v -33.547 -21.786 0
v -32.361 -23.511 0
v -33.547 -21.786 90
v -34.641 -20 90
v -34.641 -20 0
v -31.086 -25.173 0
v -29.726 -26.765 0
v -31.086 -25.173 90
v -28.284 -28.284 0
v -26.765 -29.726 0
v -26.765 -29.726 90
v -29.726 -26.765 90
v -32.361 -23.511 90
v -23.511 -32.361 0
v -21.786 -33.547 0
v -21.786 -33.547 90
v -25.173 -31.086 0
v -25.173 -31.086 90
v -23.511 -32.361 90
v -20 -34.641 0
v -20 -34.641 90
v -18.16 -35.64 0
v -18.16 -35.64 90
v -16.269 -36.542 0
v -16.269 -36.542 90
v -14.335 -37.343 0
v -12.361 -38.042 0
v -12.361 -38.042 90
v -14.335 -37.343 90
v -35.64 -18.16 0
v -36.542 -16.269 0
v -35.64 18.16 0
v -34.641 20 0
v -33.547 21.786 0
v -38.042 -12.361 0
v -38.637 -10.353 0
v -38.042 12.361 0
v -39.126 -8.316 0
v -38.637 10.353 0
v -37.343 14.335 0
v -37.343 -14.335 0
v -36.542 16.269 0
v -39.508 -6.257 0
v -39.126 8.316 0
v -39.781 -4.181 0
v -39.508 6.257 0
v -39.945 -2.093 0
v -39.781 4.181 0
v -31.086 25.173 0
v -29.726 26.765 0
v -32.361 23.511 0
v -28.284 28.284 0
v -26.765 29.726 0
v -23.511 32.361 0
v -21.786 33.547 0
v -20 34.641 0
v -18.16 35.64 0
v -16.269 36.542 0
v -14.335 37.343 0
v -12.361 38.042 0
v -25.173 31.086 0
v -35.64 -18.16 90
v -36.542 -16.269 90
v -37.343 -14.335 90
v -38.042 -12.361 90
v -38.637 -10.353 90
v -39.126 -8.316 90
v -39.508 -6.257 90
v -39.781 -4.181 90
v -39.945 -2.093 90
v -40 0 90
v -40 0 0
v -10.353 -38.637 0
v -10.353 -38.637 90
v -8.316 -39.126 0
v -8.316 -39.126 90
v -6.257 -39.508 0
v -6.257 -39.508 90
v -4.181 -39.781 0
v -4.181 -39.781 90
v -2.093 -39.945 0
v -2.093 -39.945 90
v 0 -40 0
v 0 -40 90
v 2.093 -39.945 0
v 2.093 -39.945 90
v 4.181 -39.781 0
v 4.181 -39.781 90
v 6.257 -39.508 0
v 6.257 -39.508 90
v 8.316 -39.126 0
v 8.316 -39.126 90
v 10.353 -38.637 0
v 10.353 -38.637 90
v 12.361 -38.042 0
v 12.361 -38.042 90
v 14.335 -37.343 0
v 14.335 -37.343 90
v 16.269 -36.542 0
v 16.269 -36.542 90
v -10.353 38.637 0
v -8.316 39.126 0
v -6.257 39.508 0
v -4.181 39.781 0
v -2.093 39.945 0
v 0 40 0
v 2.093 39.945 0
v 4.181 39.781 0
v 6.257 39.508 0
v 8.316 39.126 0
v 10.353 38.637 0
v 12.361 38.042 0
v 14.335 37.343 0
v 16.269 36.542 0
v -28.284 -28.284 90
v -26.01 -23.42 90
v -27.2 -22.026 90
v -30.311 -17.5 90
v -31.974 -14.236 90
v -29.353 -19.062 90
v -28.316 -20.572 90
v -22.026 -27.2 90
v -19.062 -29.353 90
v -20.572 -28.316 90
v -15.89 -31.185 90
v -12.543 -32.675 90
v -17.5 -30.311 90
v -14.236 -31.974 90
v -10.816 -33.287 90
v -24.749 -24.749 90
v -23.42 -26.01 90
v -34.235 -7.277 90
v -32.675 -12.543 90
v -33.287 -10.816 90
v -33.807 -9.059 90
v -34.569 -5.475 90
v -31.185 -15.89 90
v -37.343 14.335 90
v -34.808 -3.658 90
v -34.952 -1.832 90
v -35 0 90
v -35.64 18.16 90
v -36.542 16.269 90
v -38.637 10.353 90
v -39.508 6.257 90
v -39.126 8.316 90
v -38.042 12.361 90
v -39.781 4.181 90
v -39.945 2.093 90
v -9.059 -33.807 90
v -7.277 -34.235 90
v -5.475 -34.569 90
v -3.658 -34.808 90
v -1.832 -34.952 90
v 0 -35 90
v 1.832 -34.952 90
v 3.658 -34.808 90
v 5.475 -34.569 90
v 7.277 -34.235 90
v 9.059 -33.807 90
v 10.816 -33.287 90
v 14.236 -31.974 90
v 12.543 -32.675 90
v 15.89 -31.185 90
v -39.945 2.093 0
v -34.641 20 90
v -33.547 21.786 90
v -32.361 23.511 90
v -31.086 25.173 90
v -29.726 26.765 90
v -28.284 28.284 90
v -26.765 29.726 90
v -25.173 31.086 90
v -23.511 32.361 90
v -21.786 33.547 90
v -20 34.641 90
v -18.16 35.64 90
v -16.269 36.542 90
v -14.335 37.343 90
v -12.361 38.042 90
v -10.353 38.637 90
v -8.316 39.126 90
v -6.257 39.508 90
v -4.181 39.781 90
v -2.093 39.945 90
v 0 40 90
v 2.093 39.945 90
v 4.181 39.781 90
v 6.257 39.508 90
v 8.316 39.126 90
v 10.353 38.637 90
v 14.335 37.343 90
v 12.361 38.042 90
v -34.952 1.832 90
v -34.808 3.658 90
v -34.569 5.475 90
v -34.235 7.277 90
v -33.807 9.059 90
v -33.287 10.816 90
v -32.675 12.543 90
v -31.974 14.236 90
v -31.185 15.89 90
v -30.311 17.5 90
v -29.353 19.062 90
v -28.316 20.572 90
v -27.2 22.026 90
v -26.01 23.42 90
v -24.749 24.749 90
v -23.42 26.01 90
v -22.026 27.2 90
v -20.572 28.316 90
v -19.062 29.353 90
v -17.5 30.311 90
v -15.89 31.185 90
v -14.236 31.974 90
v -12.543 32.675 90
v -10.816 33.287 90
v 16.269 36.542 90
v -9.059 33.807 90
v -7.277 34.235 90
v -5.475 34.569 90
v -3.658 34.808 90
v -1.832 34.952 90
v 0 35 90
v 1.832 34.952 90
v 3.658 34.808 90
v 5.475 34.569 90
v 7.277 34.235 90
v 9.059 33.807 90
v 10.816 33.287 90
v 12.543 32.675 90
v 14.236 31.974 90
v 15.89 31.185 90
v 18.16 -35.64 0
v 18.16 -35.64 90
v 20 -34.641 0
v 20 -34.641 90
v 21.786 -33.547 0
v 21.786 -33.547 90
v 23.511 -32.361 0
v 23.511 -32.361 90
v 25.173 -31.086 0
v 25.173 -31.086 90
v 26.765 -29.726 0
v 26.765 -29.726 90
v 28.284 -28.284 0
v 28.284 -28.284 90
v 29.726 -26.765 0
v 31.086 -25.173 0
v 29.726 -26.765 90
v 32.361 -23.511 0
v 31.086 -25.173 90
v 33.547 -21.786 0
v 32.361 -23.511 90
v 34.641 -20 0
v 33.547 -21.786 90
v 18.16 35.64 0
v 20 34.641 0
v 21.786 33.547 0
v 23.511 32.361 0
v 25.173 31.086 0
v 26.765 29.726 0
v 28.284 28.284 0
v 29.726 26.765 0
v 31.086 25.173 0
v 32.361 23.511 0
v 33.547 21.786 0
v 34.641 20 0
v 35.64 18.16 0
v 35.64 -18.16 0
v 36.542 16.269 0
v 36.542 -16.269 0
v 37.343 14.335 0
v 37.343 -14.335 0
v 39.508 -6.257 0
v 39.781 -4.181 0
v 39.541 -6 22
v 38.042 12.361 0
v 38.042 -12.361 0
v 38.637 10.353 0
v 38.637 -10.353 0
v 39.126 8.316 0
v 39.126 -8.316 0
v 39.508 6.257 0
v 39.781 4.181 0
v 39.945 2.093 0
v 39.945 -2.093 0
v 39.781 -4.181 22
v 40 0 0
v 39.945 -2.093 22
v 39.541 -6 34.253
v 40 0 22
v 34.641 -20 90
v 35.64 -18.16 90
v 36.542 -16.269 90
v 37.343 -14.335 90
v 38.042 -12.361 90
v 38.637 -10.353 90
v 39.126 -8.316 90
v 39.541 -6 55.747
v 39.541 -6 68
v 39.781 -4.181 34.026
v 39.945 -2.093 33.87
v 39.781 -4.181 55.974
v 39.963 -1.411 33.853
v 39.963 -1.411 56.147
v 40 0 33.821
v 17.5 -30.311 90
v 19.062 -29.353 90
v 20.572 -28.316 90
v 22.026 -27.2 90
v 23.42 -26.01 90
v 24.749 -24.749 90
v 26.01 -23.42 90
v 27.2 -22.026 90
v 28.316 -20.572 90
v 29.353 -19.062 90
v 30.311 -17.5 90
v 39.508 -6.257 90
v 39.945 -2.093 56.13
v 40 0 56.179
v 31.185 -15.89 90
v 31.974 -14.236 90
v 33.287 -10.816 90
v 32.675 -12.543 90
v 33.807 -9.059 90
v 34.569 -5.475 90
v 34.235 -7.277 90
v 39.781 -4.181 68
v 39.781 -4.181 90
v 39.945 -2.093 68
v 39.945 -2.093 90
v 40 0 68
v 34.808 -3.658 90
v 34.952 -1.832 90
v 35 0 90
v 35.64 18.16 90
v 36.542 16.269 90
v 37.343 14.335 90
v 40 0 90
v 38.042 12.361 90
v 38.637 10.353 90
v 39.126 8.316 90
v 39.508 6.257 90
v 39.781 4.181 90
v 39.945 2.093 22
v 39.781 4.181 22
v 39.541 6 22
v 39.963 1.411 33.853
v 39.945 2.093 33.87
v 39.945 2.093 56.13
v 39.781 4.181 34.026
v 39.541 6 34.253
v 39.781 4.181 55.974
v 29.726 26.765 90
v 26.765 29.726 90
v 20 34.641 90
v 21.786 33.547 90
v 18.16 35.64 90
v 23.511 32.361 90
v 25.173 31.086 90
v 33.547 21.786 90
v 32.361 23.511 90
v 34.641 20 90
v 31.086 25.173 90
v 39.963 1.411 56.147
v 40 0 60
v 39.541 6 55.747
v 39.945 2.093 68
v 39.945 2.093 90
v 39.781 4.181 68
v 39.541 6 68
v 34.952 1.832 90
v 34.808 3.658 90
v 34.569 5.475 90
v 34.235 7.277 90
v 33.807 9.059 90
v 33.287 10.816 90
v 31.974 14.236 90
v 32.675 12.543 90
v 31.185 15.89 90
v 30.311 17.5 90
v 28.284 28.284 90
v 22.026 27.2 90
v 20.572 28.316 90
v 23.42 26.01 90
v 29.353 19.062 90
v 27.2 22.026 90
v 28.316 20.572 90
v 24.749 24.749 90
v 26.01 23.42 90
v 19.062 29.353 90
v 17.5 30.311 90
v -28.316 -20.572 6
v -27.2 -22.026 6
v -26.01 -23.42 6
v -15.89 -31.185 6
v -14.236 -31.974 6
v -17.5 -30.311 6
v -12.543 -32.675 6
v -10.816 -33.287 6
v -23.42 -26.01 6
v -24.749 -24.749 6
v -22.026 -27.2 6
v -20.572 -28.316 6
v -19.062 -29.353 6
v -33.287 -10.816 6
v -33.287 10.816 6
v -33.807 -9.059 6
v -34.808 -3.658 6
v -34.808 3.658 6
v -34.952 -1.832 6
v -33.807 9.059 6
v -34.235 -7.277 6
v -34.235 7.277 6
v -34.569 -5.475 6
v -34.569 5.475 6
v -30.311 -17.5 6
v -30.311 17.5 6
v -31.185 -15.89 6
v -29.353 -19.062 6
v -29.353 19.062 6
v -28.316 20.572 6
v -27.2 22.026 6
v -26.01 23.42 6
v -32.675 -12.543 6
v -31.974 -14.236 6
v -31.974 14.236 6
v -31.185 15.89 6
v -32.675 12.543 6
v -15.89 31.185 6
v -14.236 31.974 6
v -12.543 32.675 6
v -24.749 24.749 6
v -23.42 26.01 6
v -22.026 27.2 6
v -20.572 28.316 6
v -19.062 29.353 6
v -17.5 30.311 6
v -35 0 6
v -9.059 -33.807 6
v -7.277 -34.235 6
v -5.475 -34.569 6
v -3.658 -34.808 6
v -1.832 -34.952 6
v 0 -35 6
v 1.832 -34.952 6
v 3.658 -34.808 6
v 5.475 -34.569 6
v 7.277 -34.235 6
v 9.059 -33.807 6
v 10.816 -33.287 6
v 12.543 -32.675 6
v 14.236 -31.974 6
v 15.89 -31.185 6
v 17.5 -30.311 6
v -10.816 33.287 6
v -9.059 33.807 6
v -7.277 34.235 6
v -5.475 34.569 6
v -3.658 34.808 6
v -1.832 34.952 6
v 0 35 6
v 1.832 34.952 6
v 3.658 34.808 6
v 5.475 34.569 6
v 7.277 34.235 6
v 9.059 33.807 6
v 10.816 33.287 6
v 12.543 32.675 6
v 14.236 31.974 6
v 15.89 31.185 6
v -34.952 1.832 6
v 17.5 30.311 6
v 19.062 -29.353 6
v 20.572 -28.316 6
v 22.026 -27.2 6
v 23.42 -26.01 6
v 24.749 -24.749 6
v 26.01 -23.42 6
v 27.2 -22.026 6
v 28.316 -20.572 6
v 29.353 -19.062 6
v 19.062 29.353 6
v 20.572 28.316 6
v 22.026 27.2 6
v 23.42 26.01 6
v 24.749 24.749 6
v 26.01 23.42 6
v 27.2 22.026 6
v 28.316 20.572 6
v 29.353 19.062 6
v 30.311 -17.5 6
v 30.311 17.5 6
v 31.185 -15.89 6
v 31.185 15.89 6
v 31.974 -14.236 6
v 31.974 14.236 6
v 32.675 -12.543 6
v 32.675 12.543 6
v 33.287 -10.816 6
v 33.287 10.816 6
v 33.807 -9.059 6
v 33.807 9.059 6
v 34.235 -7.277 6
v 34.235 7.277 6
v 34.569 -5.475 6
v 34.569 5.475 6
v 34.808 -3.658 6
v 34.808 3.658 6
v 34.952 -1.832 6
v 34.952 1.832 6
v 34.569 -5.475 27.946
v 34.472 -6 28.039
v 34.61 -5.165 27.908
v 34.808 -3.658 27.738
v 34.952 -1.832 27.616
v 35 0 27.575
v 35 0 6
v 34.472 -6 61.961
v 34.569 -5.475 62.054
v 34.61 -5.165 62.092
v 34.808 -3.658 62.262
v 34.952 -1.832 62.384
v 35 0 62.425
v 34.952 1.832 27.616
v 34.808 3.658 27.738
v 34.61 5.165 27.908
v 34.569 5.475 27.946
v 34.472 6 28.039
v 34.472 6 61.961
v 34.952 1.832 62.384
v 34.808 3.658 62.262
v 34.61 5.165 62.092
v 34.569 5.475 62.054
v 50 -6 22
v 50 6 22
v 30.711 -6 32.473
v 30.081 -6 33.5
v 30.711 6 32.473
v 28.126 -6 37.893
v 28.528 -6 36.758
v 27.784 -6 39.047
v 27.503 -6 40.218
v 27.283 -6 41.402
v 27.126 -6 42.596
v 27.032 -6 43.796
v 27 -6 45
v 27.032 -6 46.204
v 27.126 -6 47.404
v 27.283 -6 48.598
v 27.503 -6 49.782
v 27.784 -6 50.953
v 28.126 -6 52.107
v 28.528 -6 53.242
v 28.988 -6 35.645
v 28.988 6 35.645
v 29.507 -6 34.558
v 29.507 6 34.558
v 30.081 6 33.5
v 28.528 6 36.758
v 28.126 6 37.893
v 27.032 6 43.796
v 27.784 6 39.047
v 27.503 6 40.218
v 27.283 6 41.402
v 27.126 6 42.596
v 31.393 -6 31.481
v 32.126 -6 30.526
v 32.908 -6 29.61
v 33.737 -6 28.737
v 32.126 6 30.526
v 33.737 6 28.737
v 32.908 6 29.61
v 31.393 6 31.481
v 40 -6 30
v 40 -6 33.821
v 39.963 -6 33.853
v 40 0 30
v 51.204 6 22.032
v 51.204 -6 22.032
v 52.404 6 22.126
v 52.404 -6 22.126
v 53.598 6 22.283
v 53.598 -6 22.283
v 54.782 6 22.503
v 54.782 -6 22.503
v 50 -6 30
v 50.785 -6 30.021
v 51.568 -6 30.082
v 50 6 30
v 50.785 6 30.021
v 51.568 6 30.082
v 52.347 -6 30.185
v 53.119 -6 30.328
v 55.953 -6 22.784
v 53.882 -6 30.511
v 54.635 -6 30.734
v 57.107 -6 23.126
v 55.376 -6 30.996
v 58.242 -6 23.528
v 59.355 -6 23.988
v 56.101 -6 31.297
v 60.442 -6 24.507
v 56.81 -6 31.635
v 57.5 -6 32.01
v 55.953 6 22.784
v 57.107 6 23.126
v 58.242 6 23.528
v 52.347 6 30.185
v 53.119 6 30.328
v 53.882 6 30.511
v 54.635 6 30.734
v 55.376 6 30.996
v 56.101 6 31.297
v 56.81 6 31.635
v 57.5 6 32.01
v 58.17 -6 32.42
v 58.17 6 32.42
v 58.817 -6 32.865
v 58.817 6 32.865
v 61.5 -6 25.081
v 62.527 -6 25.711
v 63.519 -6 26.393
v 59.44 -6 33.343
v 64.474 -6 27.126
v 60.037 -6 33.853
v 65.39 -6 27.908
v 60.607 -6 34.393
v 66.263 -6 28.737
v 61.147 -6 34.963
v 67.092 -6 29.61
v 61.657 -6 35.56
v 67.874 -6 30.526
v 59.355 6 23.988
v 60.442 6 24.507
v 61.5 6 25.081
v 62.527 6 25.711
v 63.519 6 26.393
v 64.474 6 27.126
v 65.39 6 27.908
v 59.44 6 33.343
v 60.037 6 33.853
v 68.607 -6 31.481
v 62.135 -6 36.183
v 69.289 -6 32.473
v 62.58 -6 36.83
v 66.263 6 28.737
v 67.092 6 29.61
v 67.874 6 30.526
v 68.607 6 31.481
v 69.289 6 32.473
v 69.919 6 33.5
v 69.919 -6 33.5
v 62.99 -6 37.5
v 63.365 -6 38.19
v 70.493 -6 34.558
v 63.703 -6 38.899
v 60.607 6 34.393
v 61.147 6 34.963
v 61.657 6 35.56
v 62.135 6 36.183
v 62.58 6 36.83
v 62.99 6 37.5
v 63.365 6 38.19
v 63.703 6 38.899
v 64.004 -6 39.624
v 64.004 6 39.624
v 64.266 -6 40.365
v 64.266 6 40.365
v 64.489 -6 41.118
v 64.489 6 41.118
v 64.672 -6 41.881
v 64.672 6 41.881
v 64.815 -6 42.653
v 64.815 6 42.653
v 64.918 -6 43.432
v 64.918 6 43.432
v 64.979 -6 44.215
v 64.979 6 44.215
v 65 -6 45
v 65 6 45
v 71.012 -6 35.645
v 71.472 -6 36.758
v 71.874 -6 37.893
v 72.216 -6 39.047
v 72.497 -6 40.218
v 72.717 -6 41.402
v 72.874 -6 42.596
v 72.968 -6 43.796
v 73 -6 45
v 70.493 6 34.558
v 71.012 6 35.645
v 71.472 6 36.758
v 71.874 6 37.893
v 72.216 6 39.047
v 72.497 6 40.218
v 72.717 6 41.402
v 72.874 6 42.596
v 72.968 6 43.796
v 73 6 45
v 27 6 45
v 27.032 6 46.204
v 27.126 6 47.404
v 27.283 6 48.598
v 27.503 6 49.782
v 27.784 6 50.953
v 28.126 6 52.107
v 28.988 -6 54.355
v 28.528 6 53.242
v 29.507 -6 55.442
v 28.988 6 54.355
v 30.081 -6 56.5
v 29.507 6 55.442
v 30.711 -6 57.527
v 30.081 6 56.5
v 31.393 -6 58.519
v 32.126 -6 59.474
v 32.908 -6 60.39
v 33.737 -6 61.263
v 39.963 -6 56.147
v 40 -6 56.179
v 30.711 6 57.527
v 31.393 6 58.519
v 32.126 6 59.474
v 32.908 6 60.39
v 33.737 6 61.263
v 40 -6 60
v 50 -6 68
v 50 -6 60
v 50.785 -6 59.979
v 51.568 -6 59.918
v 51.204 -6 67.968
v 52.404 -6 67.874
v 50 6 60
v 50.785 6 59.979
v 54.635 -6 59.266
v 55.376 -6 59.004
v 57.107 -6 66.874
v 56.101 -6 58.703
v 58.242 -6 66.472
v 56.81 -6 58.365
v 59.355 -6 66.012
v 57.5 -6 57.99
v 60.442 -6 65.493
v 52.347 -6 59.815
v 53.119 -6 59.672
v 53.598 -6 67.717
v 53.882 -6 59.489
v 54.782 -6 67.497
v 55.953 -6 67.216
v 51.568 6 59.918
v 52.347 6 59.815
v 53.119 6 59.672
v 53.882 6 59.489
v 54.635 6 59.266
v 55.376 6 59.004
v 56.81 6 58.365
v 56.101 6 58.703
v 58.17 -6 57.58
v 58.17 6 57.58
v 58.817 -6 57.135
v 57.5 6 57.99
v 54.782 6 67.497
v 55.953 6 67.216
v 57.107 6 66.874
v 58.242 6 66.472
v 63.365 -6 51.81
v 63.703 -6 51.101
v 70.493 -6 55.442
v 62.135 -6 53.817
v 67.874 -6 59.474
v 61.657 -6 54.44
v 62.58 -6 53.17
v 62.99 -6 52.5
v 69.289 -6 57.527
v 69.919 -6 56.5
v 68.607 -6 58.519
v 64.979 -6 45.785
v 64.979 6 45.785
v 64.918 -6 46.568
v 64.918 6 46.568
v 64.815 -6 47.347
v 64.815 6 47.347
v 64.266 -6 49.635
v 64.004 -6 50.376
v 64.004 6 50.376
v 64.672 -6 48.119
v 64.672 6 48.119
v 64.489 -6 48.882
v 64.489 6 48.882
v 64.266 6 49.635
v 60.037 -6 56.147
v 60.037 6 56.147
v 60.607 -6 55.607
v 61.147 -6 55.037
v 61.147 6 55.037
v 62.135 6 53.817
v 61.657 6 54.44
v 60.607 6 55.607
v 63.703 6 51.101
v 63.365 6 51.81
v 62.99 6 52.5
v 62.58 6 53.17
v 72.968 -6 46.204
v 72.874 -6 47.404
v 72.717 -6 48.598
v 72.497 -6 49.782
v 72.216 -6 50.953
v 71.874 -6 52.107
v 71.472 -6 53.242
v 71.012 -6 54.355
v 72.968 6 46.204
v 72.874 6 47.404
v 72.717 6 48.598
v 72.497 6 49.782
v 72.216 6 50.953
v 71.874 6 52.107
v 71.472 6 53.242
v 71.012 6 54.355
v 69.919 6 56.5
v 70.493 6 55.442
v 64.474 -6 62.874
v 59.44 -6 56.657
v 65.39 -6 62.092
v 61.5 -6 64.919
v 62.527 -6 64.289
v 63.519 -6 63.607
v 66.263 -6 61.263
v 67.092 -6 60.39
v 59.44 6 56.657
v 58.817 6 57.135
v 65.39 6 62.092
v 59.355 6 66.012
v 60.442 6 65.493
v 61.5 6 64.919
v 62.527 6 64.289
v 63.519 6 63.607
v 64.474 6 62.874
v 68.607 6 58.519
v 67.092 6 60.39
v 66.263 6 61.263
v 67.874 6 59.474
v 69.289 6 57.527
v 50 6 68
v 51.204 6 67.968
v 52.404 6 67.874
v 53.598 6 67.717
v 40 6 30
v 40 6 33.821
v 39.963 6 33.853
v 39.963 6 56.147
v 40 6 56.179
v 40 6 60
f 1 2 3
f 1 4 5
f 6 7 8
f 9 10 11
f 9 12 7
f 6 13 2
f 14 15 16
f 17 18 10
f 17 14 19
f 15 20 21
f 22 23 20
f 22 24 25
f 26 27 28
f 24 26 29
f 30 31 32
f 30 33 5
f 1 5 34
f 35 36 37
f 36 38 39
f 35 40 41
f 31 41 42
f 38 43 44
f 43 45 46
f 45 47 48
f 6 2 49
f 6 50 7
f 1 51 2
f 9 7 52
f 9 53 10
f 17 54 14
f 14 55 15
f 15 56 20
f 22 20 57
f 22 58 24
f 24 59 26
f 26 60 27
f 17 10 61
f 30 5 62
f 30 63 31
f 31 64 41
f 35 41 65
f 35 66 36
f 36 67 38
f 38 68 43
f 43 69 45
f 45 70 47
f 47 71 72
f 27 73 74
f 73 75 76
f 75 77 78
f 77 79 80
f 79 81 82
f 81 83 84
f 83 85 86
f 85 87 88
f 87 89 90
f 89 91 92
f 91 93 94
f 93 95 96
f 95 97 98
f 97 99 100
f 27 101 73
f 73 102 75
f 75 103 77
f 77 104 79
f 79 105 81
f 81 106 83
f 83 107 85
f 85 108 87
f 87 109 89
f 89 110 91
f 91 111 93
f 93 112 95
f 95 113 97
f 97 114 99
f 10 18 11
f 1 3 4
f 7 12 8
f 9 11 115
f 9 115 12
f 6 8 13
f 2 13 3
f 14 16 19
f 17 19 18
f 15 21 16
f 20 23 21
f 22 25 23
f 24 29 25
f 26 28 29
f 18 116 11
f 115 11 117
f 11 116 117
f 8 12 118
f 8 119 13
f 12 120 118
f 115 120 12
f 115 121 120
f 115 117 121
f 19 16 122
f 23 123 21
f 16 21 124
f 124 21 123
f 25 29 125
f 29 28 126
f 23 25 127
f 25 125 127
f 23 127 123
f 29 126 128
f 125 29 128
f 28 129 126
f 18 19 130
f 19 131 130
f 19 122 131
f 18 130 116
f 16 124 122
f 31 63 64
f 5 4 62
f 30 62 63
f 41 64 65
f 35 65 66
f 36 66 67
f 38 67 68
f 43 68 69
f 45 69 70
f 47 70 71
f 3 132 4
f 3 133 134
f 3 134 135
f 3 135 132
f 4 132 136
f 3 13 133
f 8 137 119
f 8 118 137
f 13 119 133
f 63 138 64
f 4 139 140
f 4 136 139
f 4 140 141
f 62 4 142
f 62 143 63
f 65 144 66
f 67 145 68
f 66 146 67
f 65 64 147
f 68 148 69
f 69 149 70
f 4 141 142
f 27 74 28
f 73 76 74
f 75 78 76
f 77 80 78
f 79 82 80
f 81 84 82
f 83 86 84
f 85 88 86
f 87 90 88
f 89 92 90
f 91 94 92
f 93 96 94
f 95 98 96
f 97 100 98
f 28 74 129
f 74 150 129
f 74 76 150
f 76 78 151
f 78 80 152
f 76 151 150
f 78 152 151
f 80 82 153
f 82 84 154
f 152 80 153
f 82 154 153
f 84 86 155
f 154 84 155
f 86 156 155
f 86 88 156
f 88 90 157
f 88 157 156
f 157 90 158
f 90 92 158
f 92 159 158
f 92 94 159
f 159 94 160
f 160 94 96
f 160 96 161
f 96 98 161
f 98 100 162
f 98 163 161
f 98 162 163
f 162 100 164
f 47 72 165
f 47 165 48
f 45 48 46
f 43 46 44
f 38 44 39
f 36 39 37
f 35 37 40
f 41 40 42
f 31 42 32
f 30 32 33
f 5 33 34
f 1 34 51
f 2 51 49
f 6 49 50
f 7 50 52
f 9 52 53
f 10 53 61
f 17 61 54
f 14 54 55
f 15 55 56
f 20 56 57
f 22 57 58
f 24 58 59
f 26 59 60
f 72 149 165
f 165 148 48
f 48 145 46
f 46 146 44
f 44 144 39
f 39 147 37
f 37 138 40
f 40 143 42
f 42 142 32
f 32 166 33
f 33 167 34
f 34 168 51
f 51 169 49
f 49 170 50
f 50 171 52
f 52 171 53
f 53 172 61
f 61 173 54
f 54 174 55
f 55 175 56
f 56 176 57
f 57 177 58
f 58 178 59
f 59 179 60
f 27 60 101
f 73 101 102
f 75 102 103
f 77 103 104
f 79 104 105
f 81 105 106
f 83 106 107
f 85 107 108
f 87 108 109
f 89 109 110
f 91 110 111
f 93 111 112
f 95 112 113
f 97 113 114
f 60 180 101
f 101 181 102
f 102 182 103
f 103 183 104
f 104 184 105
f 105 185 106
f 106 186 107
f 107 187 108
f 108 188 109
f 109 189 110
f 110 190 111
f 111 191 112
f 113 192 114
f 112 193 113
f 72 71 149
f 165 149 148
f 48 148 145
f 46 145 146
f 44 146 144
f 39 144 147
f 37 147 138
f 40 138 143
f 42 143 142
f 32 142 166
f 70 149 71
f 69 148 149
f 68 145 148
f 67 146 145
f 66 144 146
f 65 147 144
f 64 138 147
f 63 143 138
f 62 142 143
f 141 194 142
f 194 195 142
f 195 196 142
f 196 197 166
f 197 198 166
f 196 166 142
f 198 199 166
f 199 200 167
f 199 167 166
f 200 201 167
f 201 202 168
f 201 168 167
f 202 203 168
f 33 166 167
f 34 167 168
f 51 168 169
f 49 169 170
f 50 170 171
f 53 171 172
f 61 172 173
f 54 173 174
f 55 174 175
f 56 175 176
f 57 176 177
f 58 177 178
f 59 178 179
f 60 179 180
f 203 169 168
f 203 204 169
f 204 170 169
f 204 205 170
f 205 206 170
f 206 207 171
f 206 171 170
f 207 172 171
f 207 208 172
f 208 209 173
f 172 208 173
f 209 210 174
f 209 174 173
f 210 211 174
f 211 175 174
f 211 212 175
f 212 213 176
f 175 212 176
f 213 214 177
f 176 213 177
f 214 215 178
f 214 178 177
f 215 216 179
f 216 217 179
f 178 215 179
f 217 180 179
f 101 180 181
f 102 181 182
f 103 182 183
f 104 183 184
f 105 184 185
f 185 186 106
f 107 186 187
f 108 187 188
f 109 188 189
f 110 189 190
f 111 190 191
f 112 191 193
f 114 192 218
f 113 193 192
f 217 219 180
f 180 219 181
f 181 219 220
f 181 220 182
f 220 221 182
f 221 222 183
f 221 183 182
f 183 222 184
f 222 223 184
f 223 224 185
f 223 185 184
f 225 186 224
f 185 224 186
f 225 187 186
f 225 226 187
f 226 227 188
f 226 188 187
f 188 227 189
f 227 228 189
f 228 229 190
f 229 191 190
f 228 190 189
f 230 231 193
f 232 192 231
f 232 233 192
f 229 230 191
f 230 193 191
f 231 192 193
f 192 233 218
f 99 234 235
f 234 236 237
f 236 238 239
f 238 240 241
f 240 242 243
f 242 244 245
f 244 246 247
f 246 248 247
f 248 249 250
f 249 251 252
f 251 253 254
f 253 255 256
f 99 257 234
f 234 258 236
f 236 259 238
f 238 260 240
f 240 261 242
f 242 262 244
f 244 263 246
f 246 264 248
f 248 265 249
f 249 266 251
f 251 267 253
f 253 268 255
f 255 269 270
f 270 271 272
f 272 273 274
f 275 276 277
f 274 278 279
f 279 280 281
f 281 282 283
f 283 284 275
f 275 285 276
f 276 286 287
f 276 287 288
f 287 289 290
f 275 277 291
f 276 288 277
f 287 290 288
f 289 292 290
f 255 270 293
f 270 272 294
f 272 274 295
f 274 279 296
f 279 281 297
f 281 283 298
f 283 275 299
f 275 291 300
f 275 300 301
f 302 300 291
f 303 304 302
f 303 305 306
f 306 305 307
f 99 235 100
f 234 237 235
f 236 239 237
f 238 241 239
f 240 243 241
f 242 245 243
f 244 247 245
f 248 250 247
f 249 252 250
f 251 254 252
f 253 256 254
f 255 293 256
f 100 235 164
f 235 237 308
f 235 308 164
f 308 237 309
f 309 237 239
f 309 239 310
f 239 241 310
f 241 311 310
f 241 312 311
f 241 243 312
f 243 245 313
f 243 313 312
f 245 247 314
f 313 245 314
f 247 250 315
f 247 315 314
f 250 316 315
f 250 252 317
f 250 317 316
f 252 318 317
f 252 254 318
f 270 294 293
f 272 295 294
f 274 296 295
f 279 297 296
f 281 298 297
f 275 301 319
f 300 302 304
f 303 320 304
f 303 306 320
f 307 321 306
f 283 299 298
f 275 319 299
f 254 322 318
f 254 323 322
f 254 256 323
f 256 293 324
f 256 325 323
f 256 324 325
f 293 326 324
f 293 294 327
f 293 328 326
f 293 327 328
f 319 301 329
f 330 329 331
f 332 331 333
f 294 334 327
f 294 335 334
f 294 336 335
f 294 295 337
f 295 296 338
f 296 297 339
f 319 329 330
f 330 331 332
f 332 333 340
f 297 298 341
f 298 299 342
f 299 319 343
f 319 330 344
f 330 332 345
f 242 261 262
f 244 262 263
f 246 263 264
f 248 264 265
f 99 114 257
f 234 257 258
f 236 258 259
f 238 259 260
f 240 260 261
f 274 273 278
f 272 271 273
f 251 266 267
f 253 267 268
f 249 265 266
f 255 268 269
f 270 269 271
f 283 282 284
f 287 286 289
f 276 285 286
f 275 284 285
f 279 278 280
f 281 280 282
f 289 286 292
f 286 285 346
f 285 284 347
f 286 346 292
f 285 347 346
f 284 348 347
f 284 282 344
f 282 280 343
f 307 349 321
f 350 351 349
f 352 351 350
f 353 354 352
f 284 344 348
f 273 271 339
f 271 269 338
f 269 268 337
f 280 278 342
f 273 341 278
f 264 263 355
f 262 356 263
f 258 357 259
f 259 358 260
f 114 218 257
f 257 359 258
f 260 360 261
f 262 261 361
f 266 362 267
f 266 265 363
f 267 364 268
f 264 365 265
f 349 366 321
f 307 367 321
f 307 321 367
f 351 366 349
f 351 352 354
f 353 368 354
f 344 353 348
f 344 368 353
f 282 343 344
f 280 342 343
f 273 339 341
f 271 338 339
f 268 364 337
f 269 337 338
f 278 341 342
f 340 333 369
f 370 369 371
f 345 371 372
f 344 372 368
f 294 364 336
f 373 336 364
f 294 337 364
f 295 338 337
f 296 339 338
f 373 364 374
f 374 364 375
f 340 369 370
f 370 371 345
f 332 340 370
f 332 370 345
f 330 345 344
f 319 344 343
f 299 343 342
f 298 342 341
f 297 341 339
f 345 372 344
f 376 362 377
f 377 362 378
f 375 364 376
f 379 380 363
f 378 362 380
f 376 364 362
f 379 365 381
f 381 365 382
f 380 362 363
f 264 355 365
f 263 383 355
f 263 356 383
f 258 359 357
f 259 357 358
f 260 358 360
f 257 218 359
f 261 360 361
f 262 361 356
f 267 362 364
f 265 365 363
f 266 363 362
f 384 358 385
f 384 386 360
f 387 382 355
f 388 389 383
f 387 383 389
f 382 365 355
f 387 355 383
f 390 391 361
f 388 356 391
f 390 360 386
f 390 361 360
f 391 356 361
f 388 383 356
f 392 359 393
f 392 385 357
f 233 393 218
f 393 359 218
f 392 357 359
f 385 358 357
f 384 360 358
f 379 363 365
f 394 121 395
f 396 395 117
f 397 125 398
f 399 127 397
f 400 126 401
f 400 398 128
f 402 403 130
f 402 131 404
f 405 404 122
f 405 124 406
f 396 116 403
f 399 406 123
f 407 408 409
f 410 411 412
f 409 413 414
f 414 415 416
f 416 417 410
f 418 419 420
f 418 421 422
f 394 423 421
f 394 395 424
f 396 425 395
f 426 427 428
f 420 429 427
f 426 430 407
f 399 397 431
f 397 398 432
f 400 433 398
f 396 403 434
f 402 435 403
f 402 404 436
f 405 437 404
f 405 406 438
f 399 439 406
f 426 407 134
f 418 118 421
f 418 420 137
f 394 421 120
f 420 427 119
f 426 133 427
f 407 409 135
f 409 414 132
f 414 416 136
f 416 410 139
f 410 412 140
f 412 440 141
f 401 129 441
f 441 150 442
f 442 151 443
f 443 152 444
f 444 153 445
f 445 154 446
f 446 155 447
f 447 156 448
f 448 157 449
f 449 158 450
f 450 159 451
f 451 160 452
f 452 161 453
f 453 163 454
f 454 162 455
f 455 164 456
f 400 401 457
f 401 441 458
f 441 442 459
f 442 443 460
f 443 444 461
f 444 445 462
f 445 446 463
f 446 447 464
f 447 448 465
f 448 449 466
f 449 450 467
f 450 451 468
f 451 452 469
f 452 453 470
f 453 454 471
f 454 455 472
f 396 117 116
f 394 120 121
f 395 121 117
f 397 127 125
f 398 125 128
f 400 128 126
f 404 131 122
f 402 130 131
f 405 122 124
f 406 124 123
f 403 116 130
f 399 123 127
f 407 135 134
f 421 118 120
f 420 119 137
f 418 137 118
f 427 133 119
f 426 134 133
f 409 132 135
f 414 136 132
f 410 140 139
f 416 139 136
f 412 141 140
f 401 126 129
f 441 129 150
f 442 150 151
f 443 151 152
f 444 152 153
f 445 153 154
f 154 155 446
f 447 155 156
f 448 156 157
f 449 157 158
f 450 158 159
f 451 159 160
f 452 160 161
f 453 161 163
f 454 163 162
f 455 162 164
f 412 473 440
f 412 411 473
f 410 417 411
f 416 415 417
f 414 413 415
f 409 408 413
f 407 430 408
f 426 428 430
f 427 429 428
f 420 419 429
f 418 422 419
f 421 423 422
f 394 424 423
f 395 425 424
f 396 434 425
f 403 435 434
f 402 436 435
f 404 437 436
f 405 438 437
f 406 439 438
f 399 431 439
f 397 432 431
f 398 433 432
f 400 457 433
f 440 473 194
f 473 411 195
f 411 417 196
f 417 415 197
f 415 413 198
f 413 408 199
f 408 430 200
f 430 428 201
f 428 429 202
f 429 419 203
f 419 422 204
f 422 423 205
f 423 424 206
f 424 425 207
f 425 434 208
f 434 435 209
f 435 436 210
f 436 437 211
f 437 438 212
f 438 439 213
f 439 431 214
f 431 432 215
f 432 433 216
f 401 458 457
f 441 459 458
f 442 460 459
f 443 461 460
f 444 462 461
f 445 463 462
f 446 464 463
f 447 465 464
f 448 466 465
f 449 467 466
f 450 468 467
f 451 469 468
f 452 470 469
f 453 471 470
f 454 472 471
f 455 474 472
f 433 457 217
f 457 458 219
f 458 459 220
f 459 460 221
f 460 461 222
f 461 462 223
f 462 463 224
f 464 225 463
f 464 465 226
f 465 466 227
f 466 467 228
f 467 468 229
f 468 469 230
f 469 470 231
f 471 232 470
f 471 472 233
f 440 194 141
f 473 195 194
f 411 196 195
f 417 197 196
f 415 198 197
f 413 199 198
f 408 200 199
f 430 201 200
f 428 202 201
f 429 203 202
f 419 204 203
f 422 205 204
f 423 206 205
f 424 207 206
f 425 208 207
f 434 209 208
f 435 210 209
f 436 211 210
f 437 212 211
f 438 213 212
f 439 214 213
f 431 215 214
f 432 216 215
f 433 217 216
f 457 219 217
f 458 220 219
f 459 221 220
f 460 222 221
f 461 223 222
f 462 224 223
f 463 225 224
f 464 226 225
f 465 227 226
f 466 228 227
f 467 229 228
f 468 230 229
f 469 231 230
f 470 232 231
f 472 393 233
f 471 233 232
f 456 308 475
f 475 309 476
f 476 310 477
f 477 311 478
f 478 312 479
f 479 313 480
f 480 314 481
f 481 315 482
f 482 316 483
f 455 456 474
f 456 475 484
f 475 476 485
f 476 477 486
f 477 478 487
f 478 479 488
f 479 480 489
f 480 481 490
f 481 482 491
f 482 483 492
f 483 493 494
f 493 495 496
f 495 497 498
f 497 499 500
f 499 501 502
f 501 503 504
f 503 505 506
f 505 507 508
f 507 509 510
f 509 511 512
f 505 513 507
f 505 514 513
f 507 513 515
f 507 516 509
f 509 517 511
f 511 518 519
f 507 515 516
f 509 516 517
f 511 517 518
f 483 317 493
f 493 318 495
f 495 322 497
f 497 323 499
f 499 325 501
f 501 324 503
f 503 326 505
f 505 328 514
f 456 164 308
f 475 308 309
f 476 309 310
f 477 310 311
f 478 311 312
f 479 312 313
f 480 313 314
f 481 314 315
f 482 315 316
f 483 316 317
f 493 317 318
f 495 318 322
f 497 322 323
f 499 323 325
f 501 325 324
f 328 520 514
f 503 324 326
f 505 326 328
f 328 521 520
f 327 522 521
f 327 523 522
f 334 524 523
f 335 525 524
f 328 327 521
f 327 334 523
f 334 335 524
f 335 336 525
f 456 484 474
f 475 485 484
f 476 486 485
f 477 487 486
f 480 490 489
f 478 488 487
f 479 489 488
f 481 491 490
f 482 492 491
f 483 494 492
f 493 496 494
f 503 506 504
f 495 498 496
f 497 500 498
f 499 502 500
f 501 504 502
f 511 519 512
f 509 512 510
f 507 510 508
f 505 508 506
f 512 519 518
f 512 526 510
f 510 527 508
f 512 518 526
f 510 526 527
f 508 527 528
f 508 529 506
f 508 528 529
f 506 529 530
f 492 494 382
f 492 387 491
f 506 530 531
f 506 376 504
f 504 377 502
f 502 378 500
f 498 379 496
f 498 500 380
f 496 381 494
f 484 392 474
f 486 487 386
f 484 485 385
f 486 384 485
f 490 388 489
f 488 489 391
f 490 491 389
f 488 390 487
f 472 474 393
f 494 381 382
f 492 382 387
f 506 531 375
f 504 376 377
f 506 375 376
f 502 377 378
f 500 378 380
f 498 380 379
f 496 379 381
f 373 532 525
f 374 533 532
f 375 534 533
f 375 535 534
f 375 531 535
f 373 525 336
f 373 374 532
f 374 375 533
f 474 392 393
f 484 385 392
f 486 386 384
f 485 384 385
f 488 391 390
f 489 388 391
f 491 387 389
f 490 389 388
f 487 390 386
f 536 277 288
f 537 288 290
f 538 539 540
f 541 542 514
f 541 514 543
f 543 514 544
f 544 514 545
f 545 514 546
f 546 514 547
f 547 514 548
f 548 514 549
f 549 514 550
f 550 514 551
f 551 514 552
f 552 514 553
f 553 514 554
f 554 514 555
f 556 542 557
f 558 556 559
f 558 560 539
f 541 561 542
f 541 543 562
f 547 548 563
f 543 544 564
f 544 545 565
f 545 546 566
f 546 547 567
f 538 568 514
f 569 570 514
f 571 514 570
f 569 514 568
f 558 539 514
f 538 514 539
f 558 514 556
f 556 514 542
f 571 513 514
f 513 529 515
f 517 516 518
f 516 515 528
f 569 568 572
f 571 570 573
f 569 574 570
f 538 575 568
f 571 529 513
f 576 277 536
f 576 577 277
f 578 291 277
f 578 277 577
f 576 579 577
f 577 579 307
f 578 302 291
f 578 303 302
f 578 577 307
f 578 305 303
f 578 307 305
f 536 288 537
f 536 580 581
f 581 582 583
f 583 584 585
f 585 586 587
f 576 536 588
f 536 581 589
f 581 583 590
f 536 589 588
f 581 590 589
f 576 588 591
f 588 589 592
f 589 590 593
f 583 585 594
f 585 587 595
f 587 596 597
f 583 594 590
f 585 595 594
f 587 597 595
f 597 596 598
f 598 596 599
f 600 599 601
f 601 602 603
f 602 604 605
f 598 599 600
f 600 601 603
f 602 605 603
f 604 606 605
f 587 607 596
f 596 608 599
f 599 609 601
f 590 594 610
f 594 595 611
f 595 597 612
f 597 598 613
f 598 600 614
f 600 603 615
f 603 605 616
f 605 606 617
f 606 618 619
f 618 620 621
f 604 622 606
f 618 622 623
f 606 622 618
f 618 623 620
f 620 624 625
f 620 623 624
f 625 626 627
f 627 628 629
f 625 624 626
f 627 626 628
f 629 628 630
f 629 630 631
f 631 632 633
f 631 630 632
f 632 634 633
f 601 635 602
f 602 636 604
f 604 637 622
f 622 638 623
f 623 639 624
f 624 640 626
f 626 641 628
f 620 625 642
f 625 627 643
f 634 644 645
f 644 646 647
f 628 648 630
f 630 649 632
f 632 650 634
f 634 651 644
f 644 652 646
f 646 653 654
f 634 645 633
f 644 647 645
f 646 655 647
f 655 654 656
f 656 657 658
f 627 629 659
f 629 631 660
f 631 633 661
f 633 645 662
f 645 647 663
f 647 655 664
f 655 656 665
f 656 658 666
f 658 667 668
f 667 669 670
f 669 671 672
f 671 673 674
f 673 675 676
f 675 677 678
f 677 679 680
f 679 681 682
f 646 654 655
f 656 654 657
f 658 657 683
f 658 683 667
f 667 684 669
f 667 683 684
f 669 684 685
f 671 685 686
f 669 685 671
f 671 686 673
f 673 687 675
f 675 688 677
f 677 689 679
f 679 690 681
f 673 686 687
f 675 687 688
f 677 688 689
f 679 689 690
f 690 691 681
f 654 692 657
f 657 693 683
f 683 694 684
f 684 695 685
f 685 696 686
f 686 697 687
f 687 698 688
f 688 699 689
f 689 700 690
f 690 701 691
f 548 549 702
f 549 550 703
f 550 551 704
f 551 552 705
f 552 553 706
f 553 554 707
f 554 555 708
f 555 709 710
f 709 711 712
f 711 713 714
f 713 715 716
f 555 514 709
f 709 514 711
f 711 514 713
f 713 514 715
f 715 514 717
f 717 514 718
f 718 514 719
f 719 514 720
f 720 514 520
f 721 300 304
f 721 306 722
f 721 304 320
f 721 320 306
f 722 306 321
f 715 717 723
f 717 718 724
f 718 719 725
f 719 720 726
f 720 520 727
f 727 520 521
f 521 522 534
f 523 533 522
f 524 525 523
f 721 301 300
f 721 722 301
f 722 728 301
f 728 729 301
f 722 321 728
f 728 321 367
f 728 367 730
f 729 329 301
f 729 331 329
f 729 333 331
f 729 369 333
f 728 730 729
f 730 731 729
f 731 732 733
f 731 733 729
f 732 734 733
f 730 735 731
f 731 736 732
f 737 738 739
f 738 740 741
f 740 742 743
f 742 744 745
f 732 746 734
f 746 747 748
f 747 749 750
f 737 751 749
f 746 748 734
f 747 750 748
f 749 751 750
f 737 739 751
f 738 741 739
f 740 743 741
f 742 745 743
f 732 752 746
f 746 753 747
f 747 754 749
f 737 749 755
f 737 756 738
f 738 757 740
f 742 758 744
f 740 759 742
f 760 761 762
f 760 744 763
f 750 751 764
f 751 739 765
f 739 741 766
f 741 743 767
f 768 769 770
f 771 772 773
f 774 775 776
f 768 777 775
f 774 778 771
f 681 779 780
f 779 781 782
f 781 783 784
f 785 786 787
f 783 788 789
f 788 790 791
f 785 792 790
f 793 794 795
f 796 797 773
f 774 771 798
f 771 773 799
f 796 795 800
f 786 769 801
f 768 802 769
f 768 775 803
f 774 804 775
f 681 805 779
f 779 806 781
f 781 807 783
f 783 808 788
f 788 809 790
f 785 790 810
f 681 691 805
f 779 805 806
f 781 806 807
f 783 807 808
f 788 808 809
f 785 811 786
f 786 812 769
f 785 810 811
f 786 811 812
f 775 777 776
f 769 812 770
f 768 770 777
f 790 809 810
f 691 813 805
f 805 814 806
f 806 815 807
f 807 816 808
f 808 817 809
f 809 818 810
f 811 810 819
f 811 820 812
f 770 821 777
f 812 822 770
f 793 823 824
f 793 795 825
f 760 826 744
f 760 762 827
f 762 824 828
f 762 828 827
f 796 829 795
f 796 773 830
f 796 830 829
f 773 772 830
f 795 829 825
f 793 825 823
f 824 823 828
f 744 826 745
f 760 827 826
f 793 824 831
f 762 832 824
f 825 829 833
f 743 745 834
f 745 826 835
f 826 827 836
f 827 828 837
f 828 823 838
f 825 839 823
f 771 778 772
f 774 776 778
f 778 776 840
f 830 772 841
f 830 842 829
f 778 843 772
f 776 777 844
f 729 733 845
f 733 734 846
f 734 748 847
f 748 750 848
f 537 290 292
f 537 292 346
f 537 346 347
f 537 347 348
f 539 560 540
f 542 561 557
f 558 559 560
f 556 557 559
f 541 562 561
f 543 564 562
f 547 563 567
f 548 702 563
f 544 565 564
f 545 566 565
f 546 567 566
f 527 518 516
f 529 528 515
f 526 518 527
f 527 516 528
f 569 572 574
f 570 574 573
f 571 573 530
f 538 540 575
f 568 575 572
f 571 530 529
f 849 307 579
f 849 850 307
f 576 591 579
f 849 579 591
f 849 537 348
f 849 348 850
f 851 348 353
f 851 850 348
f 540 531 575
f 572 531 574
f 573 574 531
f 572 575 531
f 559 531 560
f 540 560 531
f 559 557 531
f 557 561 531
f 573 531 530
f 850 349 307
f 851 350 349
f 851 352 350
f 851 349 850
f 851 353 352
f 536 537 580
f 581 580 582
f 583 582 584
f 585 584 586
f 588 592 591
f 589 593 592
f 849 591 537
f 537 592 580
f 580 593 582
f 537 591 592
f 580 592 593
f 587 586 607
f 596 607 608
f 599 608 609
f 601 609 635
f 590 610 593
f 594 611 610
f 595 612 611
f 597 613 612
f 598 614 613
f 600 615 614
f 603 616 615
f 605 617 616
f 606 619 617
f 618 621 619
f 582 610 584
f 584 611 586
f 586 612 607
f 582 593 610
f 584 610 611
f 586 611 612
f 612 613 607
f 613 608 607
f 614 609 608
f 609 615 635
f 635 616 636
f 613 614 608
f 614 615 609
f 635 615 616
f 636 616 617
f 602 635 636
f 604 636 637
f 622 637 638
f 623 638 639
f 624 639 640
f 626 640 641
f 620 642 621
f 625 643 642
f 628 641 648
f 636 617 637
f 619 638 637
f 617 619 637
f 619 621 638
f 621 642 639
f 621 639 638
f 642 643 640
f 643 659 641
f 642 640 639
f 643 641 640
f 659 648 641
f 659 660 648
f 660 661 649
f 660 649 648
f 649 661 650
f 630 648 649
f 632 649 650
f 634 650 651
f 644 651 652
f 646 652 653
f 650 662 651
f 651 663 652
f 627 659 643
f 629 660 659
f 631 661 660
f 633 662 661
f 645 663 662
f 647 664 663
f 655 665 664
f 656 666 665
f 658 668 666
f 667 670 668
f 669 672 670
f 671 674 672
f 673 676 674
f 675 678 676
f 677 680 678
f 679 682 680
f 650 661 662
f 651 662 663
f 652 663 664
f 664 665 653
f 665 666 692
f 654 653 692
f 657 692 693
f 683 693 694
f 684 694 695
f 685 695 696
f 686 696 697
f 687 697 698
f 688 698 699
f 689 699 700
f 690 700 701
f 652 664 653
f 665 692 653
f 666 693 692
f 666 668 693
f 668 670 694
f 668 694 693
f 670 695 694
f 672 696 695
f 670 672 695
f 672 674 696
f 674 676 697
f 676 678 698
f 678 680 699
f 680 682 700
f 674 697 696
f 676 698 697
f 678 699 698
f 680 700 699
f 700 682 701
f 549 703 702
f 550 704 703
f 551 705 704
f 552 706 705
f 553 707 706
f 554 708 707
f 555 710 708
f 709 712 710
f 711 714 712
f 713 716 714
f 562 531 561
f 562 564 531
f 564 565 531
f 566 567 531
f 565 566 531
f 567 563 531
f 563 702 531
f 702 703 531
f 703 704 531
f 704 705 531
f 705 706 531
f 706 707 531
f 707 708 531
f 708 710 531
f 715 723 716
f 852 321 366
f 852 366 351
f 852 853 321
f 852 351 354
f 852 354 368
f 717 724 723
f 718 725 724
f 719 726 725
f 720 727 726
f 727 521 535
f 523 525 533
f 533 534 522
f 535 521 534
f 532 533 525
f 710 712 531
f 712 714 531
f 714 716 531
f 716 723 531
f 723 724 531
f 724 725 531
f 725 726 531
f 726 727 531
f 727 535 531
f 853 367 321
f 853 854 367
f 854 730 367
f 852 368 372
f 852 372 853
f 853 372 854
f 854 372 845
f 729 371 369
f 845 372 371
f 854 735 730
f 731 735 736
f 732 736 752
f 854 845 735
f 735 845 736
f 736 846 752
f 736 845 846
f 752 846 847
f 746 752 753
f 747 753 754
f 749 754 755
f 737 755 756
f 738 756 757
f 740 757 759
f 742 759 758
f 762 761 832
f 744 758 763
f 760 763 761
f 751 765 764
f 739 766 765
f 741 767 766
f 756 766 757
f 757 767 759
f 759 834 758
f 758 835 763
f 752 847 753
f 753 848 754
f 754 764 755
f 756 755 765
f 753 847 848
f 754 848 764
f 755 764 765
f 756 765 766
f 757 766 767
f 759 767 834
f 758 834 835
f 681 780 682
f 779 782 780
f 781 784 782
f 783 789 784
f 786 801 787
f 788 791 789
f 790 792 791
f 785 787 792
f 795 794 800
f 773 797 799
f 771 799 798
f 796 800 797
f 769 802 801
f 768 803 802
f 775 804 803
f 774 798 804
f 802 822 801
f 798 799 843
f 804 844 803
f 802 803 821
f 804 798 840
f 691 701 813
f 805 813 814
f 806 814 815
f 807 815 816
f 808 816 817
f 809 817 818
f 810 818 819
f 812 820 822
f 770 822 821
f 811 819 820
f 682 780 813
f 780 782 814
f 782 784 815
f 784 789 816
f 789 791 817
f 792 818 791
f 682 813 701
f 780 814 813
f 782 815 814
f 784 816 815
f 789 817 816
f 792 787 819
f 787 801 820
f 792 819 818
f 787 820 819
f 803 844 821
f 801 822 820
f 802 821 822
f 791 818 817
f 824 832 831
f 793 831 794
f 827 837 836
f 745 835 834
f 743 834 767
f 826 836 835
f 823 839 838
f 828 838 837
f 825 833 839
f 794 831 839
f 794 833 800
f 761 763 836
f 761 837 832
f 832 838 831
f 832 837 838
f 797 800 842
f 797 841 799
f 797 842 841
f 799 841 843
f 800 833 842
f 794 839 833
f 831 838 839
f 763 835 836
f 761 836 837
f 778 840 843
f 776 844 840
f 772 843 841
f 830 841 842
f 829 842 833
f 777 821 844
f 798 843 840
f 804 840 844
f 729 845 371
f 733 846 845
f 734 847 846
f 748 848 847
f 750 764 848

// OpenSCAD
// ============================================
// マグカップ(取手は +X 軸方向の側面のみ)
// ============================================
$fn = 120;

/* ---- 本体パラメータ ---- */
mug_height   = 90;    // 全高
outer_dia    = 80;    // 外径
inner_dia    = 70;    // 内径(肉厚 5mm)
bottom_thick = 6;     // 底面の厚み

/* ---- 取手パラメータ ---- */
grip_w       = 25;    // 取手内側空間の幅(X方向)
grip_h       = 30;    // 取手内側空間の高さ(Z方向)
bar_thick    = 8;     // 取手の棒の太さ(断面)
handle_depth = 12;    // 取手の奥行き(Y方向)
embed        = 4;     // 本体壁への埋め込み量(肉厚5mm未満 → 内側へ貫通しない)

body_r   = outer_dia / 2;
handle_z = mug_height / 2;   // 高さ方向の中央に配置

/* ---- 本体:底付き中空円筒 ---- */
module mug_body() {
    difference() {
        cylinder(h = mug_height, d = outer_dia);
        // 内側をくり抜く(底 6mm を残し、上面は開口)
        translate([0, 0, bottom_thick])
            cylinder(h = mug_height - bottom_thick + 1, d = inner_dia);
    }
}

/* ---- D字形 取手断面(2D: x = 本体から外向き, y = 上下方向) ---- */
module handle_profile_2d() {
    r_in  = grip_h / 2;              // 内側半円の半径 (15)
    r_out = grip_h / 2 + bar_thick;  // 外側半円の半径 (23)
    difference() {
        // 外形:本体側(x負方向)は直線、外側(+x)は半円 → D字
        union() {
            translate([-embed, -r_out])
                square([embed + grip_w - r_in, 2 * r_out]);
            translate([grip_w - r_in, 0])
                circle(r = r_out);
        }
        // 内側の開口:高さ 30mm × 幅 25mm
        union() {
            translate([0, -r_in])
                square([grip_w - r_in, 2 * r_in]);
            translate([grip_w - r_in, 0])
                circle(r = r_in);
        }
    }
}

/* ---- 取手:+X 側面のみ、壁に embed 分食い込ませて確実に接続 ---- */
module handle() {
    translate([body_r, 0, handle_z])      // 外周面 (x = 40) に配置
        rotate([90, 0, 0])                // 断面を X-Z 平面に立てる
            linear_extrude(height = handle_depth, center = true)
                handle_profile_2d();
}

/* ---- 組み立て(本体と取手をオーバーラップさせて union → マニフォールド) ---- */
union() {
    mug_body();
    handle();
}
